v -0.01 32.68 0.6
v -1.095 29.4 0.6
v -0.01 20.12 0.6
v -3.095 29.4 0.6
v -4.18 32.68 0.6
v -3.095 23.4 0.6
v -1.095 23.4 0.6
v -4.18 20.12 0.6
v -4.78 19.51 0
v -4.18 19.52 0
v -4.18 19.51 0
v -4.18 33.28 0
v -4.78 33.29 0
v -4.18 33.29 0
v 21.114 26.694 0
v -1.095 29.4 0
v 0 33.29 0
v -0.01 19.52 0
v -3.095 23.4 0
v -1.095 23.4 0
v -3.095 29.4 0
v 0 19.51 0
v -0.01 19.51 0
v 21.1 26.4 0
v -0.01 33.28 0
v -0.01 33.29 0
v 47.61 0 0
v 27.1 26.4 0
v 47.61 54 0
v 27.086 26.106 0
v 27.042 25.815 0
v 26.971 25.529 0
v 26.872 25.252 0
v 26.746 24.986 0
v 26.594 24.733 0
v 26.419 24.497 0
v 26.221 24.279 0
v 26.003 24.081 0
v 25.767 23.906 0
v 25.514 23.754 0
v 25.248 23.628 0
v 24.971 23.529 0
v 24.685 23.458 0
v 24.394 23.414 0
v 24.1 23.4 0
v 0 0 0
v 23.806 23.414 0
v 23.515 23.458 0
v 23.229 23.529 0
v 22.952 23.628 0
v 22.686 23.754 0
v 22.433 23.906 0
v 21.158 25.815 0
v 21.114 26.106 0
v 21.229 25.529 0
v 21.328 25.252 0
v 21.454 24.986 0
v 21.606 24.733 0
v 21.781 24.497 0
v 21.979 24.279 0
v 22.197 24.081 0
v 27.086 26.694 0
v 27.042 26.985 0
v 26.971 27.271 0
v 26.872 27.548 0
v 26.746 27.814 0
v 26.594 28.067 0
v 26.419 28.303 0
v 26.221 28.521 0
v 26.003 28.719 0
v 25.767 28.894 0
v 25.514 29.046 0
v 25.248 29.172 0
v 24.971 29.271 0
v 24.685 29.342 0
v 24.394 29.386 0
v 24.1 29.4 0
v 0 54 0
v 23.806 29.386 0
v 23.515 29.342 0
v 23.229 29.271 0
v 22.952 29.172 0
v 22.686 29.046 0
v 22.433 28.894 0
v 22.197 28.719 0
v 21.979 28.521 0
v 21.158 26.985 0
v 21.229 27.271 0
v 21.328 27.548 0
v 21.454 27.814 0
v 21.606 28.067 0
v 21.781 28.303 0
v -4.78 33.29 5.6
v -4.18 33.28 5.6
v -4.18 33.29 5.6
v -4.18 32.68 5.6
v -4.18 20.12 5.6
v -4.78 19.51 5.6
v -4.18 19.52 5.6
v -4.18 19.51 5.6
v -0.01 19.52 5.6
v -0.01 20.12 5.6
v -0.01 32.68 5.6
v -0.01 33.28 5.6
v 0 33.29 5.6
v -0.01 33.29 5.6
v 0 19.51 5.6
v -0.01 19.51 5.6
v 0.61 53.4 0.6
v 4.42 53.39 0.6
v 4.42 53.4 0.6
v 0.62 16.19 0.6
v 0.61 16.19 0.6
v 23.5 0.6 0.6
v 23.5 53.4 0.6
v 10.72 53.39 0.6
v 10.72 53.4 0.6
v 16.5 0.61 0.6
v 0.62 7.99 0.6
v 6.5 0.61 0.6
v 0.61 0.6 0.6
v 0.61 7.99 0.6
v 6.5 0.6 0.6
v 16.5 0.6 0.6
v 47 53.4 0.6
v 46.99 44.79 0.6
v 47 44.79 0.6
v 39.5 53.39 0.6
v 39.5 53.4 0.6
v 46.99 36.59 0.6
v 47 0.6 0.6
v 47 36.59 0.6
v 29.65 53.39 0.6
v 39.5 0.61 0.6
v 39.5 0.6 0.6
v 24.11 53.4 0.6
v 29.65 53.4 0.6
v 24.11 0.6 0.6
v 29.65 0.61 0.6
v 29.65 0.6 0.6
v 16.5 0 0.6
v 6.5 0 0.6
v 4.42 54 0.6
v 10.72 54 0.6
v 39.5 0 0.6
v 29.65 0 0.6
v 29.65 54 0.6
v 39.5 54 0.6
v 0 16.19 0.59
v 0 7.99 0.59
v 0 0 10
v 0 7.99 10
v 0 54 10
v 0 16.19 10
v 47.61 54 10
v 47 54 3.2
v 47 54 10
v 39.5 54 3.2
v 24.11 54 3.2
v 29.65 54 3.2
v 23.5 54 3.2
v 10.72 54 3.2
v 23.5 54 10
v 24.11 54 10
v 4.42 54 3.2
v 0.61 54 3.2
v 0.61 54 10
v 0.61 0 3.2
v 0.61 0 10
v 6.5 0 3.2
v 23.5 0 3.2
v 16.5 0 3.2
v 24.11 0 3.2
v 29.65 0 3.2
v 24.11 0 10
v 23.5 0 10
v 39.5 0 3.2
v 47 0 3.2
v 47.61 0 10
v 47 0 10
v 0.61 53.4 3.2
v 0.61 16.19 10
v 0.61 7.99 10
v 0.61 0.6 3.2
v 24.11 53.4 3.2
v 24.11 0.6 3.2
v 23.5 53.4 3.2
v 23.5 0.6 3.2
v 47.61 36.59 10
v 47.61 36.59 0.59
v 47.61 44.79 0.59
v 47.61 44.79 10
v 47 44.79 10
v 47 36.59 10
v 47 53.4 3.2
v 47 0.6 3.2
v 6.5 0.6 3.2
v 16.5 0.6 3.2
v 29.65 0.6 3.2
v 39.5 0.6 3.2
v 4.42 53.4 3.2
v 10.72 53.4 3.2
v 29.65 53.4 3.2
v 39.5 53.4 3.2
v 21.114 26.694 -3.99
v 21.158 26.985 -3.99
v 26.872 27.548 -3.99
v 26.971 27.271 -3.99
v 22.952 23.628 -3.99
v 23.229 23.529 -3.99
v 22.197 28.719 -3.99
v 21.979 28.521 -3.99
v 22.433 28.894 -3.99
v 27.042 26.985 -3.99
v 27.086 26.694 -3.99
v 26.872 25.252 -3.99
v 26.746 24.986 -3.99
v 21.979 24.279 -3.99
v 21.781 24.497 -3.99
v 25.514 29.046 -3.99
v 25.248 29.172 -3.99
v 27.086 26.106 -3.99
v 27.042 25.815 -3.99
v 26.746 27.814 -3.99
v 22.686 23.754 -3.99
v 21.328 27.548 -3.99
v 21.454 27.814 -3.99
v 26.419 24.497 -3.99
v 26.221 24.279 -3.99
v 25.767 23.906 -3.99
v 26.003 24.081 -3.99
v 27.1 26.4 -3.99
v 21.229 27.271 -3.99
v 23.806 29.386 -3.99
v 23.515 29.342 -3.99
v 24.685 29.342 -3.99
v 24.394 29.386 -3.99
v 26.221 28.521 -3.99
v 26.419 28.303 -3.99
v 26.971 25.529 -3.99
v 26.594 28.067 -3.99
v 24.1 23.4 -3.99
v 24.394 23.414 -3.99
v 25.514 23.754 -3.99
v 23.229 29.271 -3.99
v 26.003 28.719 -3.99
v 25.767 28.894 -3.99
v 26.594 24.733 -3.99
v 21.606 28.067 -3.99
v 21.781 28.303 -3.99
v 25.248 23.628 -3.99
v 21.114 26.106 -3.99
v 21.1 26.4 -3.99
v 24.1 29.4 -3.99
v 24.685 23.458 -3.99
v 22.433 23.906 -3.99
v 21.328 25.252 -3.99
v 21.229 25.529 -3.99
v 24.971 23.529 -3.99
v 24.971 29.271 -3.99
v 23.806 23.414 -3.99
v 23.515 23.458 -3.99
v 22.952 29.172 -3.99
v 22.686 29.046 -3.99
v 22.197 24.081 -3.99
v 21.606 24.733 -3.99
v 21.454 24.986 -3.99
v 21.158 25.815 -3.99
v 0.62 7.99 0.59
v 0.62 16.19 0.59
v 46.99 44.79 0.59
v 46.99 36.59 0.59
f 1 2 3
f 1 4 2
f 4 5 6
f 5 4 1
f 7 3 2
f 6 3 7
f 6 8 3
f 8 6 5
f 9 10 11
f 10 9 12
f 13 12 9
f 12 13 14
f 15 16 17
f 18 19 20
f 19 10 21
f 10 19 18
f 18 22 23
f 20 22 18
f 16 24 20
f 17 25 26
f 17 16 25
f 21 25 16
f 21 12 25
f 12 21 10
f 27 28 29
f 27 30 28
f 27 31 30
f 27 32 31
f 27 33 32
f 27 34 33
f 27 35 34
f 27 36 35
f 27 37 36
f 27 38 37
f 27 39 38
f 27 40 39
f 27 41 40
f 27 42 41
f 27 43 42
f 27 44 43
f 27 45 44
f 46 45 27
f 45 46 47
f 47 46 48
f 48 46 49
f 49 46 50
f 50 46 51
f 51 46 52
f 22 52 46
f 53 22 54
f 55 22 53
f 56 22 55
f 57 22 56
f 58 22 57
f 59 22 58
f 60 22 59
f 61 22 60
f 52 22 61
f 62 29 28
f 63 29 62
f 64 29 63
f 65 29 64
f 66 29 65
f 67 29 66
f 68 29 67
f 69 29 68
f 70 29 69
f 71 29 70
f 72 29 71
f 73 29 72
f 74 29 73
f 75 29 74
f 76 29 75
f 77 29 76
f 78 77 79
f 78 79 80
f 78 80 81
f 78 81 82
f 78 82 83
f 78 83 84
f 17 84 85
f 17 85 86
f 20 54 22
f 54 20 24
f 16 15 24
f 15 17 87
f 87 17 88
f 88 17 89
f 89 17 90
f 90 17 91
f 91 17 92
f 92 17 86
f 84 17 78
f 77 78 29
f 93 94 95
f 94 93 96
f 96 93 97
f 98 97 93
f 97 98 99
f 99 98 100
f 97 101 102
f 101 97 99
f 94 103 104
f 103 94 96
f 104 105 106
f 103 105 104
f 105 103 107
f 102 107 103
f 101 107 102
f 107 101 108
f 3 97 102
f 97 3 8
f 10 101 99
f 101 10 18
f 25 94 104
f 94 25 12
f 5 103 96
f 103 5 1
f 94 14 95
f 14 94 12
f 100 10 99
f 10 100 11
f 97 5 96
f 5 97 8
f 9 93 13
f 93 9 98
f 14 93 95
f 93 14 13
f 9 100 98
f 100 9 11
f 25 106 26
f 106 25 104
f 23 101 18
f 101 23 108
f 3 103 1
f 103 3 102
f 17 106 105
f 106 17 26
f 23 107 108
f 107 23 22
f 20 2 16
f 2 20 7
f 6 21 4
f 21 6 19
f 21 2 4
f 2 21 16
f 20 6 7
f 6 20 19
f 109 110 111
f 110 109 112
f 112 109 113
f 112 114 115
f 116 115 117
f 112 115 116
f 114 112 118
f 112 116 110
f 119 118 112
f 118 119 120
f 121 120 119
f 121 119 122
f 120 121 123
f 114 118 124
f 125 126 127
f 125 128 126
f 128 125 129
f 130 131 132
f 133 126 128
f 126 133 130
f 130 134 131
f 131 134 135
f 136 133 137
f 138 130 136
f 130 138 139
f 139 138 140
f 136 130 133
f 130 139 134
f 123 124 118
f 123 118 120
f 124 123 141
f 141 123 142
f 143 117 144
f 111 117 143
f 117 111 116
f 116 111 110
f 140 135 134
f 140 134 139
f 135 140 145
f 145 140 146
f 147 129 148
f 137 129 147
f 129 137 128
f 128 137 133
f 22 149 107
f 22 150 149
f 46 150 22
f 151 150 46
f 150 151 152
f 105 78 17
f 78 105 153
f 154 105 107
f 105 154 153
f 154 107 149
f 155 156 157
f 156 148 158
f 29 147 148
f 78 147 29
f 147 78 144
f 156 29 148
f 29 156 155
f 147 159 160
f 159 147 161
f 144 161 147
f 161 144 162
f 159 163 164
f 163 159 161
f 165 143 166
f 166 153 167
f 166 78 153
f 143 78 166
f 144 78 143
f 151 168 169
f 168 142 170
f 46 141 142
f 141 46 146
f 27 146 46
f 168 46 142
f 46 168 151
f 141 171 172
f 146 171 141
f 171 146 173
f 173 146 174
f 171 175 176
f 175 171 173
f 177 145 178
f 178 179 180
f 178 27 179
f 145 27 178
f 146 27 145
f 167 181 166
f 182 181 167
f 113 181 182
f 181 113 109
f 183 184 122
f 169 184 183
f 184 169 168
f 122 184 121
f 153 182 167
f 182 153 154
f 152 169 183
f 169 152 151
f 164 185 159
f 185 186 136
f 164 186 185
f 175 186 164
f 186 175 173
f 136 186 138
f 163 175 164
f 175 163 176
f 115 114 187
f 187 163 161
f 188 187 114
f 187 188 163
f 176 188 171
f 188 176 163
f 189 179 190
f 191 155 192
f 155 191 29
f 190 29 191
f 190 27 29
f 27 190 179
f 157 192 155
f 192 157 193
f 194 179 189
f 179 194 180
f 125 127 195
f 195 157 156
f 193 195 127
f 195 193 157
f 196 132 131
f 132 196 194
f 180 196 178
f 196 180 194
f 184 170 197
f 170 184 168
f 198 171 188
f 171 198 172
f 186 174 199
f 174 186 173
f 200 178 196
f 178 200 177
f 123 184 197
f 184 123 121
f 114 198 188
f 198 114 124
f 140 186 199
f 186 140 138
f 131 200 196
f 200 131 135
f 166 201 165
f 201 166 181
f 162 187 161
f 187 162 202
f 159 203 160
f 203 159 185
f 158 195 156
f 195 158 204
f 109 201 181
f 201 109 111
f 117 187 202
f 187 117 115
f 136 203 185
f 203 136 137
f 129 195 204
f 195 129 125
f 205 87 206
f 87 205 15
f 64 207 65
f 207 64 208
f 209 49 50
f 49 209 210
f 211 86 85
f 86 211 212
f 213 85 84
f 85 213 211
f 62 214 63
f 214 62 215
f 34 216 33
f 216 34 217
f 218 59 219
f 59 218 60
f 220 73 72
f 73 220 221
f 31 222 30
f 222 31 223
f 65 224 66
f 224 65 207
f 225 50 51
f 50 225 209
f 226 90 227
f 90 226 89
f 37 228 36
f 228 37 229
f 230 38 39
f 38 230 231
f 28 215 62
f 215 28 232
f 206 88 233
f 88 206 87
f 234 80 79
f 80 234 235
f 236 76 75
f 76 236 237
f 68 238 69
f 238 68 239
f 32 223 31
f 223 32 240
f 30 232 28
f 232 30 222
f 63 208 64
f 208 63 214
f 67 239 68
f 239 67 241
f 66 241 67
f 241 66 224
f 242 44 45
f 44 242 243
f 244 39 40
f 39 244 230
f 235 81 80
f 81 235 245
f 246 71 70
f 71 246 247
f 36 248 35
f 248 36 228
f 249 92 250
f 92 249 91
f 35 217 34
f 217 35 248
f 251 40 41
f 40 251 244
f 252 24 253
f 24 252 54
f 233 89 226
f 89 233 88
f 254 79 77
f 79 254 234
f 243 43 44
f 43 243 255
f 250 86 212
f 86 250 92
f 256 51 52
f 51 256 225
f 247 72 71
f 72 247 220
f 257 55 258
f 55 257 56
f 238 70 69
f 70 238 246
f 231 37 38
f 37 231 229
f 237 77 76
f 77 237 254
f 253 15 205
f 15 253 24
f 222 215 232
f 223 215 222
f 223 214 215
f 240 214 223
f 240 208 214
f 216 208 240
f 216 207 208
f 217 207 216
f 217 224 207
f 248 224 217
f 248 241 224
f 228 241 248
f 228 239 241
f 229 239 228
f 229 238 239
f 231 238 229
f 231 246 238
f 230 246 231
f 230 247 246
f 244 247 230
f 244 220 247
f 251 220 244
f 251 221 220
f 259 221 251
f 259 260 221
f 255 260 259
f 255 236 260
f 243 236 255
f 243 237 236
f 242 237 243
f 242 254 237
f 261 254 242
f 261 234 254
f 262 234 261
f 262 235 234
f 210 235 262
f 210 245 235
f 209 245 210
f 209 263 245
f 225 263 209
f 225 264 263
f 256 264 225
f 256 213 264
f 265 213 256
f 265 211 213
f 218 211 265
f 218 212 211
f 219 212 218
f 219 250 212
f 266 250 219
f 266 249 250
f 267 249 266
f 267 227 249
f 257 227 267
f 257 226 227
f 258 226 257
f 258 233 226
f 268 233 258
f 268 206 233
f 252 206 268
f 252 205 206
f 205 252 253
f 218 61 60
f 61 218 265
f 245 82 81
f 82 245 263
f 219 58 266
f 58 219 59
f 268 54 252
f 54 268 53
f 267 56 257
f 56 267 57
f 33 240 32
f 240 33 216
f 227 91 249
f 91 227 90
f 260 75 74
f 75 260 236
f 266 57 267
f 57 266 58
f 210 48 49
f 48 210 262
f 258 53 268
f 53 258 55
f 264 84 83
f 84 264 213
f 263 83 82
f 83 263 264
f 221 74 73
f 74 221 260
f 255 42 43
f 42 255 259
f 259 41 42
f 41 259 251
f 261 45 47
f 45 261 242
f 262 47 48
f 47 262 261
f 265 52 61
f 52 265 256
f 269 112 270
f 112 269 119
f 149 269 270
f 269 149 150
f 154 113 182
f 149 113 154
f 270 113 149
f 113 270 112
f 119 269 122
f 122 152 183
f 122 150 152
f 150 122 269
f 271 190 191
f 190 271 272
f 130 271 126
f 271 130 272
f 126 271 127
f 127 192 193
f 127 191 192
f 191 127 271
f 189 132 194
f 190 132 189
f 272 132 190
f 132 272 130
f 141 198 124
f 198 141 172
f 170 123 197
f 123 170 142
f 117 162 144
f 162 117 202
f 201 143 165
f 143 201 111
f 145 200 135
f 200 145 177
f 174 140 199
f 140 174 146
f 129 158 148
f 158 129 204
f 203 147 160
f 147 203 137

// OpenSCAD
// tray for attaching feather boards to body assembly
// 1 unit = 1 mm

/* [Utility] */
// overlap to indicate joined objects
overlap = 0.01;

/* [Center Post] */
// center mounting hole in the backbone
center_hole_radius = 3;
// height of robot "backbone"
backbone_height = 8;

/* [Servo Board] */
// servo board w/power and right-angle headers
featherwing_width = 22.9;
// length of servo controller board
featherwing_length = 52.8;
// height of board + power post
featherwing_height = 10;

// mc board w/ through-hole leads
circuit_board_thickness = 2.6;

/* [Thickness] */
// sidewall width (also for end lips)
sidewall_width = 0.6;
// bottom thickness -- biggest effect on mass
tray_bottom_thickness = 0.6;
// thickness of switch box walls
switch_box_thickness = 0.6;

/* [Power Post Cutouts] */
// size of cutout for mc board power
power_post_width = 8.2;
// location of power cutout
power_post_from_end = 8;

/* [Power Switch Box] */
// width of power switch (y-dimension)
switch_width = 12.58;
// length of power switch (x-dimension)
switch_length = 4.19;
// height to hold switch but not block
switch_height = 5.6;
switch_wires_length = 2;
switch_wires_width = 6;

/* [End Lip Cutouts ] */
// usb-c connector on featherS2
usb_c_width = 10;
// distance from edge with power post cutout
usb_c_offset = 6.5;
// QWIIC (I2C) connector on featherS2
i2c_width = 6.3;
// distance from edge w/ power post cutout
i2c_offset = 4.42;
// motor controller headers
mc_width = 9.85;
// distance from edge w/ power post cutout
mc_offset = 7.5;

/* General Approach -----------------------------------------------------*/
/*
 * After a lot of experimentation, I've settled on the following best practice.
 * Each part is rendered by a module at 0, 0, 0 without translation (except
 * for overlap) or centering. <del>A separate module calculates the translation to
 * the final location.</del>
 * The final translation is done by the parent module / object.
 */

/* Parts  ---------------------------------------------------------------*/

/*
 * Draws a flat rectangle from 0,0,0, sized to hold two featherwing boards
 * parallel on the longer side. Includes space for sidewalls, etc.
 */
module
tray_bottom()
{
  cube([
    featherwing_width * 2 + sidewall_width * 3,
    featherwing_length + sidewall_width * 2,
    tray_bottom_thickness
  ]);
}

/*
 * Draws a vertical cylinder of a size to extend from the base through
 * the hole in the backbone part.
 */
module
center_post()
{
  cylinder($fn = 64,
           r = center_hole_radius,
           h = backbone_height / 2);
}

/*
 * Draws a flat rectangle the length of a feather board and height
 * of featherwing_height. Seperates and stabilizes the board position.
 */
module
sidewall()
{
  cube([
    sidewall_width + overlap,
    featherwing_length + 2 * sidewall_width,
    featherwing_height
  ]);
}


/*
 * Cutout in end_lip to allow access for USB-C connector or motor controller
 * headers (which are roughly the same width)
 */
module
usb_notch() {
  cube([
    usb_c_width, 
    sidewall_width + overlap * 2,
    featherwing_height
  ]);
}

/*
 * Cutout in end_lip to allow access for QWIIC connector.
 */
module
qwiic_notch() {
  cube([
    i2c_width, 
    sidewall_width + overlap * 2,
    featherwing_height
  ]);
}

/*
 * Cutout in sidewall to provide access to power supplies (battery connector for
 * micro, 5 volts for motor controllers).
 */
module
power_notch()
{
  translate([-overlap, -overlap, -overlap])
    cube([
      sidewall_width + overlap * 3, // 2 just not enough, somehow
      power_post_width,
      featherwing_height + overlap * 2
    ]);
}

/*
 * Cutout in end_lip to fit horizontal headers.
 */
module
mc_header_notch() {
  cube([
    mc_width, 
    sidewall_width + overlap * 2,
    featherwing_height
  ]);
}


/*
 * A low wall that spans the two board trays.
 */
module
end_lip()
{
  cube(
    [
      featherwing_width * 2 + sidewall_width * 3,
      sidewall_width,
      tray_bottom_thickness + circuit_board_thickness
    ]
  );
}

/*
 * A small box to contain a switch I happened to have on hand.
 * You'll need to at least set switch_length and switch_width to match
 * your switch, and possibly modify the cutout for the leads.
 */
module
switch_holder()
{
  difference()
  {
    union()
    {
      cube([ switch_length, switch_width, switch_box_thickness ]);
      translate([ 0, -switch_box_thickness + overlap, 0 ])
        cube([ switch_length, switch_box_thickness, switch_height ]);
      translate([ 0, switch_width - overlap, 0 ])
        cube([ switch_length, switch_box_thickness, switch_height ]);
      translate([ -switch_box_thickness + overlap, -switch_box_thickness, 0 ])
        cube([
               switch_box_thickness,
               switch_width + switch_box_thickness * 2,
               switch_height
        ]);
      translate([ switch_length - overlap, -switch_box_thickness, 0 ])
        cube([
          switch_box_thickness,
          switch_width + switch_box_thickness * 2,
          switch_height
        ]);
    } // union
    translate([
      (switch_length - switch_wires_length) / 2,
      (switch_width - switch_wires_width) / 2,
      -switch_box_thickness / 2
    ])
      cube([
        switch_wires_length,
        switch_wires_width,
        switch_box_thickness * 2
      ]);
  }; // difference
}



/* Assembly ---------------------------------------------------------------*/

module
board_tray()
{
  difference()
  {
    union()
    {
      tray_bottom();
      sidewall();
      translate([featherwing_width + sidewall_width, 0, 0])
        sidewall();
      translate([(featherwing_width + sidewall_width) * 2, 0, 0])
        sidewall();
      end_lip();
      translate([0, featherwing_length + sidewall_width, 0])
        end_lip();
      translate([-switch_length, (featherwing_length - switch_width) / 2, 0])
        switch_holder();
      translate([
        featherwing_width + 2 * sidewall_width,
        featherwing_length / 2,
        -backbone_height / 2 + overlap
      ])
        center_post();
    }  // union
    translate([0, power_post_from_end, tray_bottom_thickness])
      power_notch();
    translate([
      featherwing_width * 2 + sidewall_width * 2,
      featherwing_length - power_post_width - power_post_from_end,
      tray_bottom_thickness
    ])
      power_notch();
    translate([usb_c_offset, -overlap, tray_bottom_thickness])
      usb_notch();
    translate([
      i2c_offset, 
      featherwing_length + sidewall_width - overlap,
      tray_bottom_thickness
    ])
      qwiic_notch();
    translate([
      (featherwing_width + sidewall_width) * 2 - mc_width - mc_offset,
      -overlap,
      tray_bottom_thickness
    ])
      mc_header_notch();
    translate([
      (featherwing_width + sidewall_width) * 2 - mc_width - mc_offset,
      featherwing_length + sidewall_width - overlap,
      tray_bottom_thickness
    ])
      mc_header_notch();
  } // difference
}

board_tray();
